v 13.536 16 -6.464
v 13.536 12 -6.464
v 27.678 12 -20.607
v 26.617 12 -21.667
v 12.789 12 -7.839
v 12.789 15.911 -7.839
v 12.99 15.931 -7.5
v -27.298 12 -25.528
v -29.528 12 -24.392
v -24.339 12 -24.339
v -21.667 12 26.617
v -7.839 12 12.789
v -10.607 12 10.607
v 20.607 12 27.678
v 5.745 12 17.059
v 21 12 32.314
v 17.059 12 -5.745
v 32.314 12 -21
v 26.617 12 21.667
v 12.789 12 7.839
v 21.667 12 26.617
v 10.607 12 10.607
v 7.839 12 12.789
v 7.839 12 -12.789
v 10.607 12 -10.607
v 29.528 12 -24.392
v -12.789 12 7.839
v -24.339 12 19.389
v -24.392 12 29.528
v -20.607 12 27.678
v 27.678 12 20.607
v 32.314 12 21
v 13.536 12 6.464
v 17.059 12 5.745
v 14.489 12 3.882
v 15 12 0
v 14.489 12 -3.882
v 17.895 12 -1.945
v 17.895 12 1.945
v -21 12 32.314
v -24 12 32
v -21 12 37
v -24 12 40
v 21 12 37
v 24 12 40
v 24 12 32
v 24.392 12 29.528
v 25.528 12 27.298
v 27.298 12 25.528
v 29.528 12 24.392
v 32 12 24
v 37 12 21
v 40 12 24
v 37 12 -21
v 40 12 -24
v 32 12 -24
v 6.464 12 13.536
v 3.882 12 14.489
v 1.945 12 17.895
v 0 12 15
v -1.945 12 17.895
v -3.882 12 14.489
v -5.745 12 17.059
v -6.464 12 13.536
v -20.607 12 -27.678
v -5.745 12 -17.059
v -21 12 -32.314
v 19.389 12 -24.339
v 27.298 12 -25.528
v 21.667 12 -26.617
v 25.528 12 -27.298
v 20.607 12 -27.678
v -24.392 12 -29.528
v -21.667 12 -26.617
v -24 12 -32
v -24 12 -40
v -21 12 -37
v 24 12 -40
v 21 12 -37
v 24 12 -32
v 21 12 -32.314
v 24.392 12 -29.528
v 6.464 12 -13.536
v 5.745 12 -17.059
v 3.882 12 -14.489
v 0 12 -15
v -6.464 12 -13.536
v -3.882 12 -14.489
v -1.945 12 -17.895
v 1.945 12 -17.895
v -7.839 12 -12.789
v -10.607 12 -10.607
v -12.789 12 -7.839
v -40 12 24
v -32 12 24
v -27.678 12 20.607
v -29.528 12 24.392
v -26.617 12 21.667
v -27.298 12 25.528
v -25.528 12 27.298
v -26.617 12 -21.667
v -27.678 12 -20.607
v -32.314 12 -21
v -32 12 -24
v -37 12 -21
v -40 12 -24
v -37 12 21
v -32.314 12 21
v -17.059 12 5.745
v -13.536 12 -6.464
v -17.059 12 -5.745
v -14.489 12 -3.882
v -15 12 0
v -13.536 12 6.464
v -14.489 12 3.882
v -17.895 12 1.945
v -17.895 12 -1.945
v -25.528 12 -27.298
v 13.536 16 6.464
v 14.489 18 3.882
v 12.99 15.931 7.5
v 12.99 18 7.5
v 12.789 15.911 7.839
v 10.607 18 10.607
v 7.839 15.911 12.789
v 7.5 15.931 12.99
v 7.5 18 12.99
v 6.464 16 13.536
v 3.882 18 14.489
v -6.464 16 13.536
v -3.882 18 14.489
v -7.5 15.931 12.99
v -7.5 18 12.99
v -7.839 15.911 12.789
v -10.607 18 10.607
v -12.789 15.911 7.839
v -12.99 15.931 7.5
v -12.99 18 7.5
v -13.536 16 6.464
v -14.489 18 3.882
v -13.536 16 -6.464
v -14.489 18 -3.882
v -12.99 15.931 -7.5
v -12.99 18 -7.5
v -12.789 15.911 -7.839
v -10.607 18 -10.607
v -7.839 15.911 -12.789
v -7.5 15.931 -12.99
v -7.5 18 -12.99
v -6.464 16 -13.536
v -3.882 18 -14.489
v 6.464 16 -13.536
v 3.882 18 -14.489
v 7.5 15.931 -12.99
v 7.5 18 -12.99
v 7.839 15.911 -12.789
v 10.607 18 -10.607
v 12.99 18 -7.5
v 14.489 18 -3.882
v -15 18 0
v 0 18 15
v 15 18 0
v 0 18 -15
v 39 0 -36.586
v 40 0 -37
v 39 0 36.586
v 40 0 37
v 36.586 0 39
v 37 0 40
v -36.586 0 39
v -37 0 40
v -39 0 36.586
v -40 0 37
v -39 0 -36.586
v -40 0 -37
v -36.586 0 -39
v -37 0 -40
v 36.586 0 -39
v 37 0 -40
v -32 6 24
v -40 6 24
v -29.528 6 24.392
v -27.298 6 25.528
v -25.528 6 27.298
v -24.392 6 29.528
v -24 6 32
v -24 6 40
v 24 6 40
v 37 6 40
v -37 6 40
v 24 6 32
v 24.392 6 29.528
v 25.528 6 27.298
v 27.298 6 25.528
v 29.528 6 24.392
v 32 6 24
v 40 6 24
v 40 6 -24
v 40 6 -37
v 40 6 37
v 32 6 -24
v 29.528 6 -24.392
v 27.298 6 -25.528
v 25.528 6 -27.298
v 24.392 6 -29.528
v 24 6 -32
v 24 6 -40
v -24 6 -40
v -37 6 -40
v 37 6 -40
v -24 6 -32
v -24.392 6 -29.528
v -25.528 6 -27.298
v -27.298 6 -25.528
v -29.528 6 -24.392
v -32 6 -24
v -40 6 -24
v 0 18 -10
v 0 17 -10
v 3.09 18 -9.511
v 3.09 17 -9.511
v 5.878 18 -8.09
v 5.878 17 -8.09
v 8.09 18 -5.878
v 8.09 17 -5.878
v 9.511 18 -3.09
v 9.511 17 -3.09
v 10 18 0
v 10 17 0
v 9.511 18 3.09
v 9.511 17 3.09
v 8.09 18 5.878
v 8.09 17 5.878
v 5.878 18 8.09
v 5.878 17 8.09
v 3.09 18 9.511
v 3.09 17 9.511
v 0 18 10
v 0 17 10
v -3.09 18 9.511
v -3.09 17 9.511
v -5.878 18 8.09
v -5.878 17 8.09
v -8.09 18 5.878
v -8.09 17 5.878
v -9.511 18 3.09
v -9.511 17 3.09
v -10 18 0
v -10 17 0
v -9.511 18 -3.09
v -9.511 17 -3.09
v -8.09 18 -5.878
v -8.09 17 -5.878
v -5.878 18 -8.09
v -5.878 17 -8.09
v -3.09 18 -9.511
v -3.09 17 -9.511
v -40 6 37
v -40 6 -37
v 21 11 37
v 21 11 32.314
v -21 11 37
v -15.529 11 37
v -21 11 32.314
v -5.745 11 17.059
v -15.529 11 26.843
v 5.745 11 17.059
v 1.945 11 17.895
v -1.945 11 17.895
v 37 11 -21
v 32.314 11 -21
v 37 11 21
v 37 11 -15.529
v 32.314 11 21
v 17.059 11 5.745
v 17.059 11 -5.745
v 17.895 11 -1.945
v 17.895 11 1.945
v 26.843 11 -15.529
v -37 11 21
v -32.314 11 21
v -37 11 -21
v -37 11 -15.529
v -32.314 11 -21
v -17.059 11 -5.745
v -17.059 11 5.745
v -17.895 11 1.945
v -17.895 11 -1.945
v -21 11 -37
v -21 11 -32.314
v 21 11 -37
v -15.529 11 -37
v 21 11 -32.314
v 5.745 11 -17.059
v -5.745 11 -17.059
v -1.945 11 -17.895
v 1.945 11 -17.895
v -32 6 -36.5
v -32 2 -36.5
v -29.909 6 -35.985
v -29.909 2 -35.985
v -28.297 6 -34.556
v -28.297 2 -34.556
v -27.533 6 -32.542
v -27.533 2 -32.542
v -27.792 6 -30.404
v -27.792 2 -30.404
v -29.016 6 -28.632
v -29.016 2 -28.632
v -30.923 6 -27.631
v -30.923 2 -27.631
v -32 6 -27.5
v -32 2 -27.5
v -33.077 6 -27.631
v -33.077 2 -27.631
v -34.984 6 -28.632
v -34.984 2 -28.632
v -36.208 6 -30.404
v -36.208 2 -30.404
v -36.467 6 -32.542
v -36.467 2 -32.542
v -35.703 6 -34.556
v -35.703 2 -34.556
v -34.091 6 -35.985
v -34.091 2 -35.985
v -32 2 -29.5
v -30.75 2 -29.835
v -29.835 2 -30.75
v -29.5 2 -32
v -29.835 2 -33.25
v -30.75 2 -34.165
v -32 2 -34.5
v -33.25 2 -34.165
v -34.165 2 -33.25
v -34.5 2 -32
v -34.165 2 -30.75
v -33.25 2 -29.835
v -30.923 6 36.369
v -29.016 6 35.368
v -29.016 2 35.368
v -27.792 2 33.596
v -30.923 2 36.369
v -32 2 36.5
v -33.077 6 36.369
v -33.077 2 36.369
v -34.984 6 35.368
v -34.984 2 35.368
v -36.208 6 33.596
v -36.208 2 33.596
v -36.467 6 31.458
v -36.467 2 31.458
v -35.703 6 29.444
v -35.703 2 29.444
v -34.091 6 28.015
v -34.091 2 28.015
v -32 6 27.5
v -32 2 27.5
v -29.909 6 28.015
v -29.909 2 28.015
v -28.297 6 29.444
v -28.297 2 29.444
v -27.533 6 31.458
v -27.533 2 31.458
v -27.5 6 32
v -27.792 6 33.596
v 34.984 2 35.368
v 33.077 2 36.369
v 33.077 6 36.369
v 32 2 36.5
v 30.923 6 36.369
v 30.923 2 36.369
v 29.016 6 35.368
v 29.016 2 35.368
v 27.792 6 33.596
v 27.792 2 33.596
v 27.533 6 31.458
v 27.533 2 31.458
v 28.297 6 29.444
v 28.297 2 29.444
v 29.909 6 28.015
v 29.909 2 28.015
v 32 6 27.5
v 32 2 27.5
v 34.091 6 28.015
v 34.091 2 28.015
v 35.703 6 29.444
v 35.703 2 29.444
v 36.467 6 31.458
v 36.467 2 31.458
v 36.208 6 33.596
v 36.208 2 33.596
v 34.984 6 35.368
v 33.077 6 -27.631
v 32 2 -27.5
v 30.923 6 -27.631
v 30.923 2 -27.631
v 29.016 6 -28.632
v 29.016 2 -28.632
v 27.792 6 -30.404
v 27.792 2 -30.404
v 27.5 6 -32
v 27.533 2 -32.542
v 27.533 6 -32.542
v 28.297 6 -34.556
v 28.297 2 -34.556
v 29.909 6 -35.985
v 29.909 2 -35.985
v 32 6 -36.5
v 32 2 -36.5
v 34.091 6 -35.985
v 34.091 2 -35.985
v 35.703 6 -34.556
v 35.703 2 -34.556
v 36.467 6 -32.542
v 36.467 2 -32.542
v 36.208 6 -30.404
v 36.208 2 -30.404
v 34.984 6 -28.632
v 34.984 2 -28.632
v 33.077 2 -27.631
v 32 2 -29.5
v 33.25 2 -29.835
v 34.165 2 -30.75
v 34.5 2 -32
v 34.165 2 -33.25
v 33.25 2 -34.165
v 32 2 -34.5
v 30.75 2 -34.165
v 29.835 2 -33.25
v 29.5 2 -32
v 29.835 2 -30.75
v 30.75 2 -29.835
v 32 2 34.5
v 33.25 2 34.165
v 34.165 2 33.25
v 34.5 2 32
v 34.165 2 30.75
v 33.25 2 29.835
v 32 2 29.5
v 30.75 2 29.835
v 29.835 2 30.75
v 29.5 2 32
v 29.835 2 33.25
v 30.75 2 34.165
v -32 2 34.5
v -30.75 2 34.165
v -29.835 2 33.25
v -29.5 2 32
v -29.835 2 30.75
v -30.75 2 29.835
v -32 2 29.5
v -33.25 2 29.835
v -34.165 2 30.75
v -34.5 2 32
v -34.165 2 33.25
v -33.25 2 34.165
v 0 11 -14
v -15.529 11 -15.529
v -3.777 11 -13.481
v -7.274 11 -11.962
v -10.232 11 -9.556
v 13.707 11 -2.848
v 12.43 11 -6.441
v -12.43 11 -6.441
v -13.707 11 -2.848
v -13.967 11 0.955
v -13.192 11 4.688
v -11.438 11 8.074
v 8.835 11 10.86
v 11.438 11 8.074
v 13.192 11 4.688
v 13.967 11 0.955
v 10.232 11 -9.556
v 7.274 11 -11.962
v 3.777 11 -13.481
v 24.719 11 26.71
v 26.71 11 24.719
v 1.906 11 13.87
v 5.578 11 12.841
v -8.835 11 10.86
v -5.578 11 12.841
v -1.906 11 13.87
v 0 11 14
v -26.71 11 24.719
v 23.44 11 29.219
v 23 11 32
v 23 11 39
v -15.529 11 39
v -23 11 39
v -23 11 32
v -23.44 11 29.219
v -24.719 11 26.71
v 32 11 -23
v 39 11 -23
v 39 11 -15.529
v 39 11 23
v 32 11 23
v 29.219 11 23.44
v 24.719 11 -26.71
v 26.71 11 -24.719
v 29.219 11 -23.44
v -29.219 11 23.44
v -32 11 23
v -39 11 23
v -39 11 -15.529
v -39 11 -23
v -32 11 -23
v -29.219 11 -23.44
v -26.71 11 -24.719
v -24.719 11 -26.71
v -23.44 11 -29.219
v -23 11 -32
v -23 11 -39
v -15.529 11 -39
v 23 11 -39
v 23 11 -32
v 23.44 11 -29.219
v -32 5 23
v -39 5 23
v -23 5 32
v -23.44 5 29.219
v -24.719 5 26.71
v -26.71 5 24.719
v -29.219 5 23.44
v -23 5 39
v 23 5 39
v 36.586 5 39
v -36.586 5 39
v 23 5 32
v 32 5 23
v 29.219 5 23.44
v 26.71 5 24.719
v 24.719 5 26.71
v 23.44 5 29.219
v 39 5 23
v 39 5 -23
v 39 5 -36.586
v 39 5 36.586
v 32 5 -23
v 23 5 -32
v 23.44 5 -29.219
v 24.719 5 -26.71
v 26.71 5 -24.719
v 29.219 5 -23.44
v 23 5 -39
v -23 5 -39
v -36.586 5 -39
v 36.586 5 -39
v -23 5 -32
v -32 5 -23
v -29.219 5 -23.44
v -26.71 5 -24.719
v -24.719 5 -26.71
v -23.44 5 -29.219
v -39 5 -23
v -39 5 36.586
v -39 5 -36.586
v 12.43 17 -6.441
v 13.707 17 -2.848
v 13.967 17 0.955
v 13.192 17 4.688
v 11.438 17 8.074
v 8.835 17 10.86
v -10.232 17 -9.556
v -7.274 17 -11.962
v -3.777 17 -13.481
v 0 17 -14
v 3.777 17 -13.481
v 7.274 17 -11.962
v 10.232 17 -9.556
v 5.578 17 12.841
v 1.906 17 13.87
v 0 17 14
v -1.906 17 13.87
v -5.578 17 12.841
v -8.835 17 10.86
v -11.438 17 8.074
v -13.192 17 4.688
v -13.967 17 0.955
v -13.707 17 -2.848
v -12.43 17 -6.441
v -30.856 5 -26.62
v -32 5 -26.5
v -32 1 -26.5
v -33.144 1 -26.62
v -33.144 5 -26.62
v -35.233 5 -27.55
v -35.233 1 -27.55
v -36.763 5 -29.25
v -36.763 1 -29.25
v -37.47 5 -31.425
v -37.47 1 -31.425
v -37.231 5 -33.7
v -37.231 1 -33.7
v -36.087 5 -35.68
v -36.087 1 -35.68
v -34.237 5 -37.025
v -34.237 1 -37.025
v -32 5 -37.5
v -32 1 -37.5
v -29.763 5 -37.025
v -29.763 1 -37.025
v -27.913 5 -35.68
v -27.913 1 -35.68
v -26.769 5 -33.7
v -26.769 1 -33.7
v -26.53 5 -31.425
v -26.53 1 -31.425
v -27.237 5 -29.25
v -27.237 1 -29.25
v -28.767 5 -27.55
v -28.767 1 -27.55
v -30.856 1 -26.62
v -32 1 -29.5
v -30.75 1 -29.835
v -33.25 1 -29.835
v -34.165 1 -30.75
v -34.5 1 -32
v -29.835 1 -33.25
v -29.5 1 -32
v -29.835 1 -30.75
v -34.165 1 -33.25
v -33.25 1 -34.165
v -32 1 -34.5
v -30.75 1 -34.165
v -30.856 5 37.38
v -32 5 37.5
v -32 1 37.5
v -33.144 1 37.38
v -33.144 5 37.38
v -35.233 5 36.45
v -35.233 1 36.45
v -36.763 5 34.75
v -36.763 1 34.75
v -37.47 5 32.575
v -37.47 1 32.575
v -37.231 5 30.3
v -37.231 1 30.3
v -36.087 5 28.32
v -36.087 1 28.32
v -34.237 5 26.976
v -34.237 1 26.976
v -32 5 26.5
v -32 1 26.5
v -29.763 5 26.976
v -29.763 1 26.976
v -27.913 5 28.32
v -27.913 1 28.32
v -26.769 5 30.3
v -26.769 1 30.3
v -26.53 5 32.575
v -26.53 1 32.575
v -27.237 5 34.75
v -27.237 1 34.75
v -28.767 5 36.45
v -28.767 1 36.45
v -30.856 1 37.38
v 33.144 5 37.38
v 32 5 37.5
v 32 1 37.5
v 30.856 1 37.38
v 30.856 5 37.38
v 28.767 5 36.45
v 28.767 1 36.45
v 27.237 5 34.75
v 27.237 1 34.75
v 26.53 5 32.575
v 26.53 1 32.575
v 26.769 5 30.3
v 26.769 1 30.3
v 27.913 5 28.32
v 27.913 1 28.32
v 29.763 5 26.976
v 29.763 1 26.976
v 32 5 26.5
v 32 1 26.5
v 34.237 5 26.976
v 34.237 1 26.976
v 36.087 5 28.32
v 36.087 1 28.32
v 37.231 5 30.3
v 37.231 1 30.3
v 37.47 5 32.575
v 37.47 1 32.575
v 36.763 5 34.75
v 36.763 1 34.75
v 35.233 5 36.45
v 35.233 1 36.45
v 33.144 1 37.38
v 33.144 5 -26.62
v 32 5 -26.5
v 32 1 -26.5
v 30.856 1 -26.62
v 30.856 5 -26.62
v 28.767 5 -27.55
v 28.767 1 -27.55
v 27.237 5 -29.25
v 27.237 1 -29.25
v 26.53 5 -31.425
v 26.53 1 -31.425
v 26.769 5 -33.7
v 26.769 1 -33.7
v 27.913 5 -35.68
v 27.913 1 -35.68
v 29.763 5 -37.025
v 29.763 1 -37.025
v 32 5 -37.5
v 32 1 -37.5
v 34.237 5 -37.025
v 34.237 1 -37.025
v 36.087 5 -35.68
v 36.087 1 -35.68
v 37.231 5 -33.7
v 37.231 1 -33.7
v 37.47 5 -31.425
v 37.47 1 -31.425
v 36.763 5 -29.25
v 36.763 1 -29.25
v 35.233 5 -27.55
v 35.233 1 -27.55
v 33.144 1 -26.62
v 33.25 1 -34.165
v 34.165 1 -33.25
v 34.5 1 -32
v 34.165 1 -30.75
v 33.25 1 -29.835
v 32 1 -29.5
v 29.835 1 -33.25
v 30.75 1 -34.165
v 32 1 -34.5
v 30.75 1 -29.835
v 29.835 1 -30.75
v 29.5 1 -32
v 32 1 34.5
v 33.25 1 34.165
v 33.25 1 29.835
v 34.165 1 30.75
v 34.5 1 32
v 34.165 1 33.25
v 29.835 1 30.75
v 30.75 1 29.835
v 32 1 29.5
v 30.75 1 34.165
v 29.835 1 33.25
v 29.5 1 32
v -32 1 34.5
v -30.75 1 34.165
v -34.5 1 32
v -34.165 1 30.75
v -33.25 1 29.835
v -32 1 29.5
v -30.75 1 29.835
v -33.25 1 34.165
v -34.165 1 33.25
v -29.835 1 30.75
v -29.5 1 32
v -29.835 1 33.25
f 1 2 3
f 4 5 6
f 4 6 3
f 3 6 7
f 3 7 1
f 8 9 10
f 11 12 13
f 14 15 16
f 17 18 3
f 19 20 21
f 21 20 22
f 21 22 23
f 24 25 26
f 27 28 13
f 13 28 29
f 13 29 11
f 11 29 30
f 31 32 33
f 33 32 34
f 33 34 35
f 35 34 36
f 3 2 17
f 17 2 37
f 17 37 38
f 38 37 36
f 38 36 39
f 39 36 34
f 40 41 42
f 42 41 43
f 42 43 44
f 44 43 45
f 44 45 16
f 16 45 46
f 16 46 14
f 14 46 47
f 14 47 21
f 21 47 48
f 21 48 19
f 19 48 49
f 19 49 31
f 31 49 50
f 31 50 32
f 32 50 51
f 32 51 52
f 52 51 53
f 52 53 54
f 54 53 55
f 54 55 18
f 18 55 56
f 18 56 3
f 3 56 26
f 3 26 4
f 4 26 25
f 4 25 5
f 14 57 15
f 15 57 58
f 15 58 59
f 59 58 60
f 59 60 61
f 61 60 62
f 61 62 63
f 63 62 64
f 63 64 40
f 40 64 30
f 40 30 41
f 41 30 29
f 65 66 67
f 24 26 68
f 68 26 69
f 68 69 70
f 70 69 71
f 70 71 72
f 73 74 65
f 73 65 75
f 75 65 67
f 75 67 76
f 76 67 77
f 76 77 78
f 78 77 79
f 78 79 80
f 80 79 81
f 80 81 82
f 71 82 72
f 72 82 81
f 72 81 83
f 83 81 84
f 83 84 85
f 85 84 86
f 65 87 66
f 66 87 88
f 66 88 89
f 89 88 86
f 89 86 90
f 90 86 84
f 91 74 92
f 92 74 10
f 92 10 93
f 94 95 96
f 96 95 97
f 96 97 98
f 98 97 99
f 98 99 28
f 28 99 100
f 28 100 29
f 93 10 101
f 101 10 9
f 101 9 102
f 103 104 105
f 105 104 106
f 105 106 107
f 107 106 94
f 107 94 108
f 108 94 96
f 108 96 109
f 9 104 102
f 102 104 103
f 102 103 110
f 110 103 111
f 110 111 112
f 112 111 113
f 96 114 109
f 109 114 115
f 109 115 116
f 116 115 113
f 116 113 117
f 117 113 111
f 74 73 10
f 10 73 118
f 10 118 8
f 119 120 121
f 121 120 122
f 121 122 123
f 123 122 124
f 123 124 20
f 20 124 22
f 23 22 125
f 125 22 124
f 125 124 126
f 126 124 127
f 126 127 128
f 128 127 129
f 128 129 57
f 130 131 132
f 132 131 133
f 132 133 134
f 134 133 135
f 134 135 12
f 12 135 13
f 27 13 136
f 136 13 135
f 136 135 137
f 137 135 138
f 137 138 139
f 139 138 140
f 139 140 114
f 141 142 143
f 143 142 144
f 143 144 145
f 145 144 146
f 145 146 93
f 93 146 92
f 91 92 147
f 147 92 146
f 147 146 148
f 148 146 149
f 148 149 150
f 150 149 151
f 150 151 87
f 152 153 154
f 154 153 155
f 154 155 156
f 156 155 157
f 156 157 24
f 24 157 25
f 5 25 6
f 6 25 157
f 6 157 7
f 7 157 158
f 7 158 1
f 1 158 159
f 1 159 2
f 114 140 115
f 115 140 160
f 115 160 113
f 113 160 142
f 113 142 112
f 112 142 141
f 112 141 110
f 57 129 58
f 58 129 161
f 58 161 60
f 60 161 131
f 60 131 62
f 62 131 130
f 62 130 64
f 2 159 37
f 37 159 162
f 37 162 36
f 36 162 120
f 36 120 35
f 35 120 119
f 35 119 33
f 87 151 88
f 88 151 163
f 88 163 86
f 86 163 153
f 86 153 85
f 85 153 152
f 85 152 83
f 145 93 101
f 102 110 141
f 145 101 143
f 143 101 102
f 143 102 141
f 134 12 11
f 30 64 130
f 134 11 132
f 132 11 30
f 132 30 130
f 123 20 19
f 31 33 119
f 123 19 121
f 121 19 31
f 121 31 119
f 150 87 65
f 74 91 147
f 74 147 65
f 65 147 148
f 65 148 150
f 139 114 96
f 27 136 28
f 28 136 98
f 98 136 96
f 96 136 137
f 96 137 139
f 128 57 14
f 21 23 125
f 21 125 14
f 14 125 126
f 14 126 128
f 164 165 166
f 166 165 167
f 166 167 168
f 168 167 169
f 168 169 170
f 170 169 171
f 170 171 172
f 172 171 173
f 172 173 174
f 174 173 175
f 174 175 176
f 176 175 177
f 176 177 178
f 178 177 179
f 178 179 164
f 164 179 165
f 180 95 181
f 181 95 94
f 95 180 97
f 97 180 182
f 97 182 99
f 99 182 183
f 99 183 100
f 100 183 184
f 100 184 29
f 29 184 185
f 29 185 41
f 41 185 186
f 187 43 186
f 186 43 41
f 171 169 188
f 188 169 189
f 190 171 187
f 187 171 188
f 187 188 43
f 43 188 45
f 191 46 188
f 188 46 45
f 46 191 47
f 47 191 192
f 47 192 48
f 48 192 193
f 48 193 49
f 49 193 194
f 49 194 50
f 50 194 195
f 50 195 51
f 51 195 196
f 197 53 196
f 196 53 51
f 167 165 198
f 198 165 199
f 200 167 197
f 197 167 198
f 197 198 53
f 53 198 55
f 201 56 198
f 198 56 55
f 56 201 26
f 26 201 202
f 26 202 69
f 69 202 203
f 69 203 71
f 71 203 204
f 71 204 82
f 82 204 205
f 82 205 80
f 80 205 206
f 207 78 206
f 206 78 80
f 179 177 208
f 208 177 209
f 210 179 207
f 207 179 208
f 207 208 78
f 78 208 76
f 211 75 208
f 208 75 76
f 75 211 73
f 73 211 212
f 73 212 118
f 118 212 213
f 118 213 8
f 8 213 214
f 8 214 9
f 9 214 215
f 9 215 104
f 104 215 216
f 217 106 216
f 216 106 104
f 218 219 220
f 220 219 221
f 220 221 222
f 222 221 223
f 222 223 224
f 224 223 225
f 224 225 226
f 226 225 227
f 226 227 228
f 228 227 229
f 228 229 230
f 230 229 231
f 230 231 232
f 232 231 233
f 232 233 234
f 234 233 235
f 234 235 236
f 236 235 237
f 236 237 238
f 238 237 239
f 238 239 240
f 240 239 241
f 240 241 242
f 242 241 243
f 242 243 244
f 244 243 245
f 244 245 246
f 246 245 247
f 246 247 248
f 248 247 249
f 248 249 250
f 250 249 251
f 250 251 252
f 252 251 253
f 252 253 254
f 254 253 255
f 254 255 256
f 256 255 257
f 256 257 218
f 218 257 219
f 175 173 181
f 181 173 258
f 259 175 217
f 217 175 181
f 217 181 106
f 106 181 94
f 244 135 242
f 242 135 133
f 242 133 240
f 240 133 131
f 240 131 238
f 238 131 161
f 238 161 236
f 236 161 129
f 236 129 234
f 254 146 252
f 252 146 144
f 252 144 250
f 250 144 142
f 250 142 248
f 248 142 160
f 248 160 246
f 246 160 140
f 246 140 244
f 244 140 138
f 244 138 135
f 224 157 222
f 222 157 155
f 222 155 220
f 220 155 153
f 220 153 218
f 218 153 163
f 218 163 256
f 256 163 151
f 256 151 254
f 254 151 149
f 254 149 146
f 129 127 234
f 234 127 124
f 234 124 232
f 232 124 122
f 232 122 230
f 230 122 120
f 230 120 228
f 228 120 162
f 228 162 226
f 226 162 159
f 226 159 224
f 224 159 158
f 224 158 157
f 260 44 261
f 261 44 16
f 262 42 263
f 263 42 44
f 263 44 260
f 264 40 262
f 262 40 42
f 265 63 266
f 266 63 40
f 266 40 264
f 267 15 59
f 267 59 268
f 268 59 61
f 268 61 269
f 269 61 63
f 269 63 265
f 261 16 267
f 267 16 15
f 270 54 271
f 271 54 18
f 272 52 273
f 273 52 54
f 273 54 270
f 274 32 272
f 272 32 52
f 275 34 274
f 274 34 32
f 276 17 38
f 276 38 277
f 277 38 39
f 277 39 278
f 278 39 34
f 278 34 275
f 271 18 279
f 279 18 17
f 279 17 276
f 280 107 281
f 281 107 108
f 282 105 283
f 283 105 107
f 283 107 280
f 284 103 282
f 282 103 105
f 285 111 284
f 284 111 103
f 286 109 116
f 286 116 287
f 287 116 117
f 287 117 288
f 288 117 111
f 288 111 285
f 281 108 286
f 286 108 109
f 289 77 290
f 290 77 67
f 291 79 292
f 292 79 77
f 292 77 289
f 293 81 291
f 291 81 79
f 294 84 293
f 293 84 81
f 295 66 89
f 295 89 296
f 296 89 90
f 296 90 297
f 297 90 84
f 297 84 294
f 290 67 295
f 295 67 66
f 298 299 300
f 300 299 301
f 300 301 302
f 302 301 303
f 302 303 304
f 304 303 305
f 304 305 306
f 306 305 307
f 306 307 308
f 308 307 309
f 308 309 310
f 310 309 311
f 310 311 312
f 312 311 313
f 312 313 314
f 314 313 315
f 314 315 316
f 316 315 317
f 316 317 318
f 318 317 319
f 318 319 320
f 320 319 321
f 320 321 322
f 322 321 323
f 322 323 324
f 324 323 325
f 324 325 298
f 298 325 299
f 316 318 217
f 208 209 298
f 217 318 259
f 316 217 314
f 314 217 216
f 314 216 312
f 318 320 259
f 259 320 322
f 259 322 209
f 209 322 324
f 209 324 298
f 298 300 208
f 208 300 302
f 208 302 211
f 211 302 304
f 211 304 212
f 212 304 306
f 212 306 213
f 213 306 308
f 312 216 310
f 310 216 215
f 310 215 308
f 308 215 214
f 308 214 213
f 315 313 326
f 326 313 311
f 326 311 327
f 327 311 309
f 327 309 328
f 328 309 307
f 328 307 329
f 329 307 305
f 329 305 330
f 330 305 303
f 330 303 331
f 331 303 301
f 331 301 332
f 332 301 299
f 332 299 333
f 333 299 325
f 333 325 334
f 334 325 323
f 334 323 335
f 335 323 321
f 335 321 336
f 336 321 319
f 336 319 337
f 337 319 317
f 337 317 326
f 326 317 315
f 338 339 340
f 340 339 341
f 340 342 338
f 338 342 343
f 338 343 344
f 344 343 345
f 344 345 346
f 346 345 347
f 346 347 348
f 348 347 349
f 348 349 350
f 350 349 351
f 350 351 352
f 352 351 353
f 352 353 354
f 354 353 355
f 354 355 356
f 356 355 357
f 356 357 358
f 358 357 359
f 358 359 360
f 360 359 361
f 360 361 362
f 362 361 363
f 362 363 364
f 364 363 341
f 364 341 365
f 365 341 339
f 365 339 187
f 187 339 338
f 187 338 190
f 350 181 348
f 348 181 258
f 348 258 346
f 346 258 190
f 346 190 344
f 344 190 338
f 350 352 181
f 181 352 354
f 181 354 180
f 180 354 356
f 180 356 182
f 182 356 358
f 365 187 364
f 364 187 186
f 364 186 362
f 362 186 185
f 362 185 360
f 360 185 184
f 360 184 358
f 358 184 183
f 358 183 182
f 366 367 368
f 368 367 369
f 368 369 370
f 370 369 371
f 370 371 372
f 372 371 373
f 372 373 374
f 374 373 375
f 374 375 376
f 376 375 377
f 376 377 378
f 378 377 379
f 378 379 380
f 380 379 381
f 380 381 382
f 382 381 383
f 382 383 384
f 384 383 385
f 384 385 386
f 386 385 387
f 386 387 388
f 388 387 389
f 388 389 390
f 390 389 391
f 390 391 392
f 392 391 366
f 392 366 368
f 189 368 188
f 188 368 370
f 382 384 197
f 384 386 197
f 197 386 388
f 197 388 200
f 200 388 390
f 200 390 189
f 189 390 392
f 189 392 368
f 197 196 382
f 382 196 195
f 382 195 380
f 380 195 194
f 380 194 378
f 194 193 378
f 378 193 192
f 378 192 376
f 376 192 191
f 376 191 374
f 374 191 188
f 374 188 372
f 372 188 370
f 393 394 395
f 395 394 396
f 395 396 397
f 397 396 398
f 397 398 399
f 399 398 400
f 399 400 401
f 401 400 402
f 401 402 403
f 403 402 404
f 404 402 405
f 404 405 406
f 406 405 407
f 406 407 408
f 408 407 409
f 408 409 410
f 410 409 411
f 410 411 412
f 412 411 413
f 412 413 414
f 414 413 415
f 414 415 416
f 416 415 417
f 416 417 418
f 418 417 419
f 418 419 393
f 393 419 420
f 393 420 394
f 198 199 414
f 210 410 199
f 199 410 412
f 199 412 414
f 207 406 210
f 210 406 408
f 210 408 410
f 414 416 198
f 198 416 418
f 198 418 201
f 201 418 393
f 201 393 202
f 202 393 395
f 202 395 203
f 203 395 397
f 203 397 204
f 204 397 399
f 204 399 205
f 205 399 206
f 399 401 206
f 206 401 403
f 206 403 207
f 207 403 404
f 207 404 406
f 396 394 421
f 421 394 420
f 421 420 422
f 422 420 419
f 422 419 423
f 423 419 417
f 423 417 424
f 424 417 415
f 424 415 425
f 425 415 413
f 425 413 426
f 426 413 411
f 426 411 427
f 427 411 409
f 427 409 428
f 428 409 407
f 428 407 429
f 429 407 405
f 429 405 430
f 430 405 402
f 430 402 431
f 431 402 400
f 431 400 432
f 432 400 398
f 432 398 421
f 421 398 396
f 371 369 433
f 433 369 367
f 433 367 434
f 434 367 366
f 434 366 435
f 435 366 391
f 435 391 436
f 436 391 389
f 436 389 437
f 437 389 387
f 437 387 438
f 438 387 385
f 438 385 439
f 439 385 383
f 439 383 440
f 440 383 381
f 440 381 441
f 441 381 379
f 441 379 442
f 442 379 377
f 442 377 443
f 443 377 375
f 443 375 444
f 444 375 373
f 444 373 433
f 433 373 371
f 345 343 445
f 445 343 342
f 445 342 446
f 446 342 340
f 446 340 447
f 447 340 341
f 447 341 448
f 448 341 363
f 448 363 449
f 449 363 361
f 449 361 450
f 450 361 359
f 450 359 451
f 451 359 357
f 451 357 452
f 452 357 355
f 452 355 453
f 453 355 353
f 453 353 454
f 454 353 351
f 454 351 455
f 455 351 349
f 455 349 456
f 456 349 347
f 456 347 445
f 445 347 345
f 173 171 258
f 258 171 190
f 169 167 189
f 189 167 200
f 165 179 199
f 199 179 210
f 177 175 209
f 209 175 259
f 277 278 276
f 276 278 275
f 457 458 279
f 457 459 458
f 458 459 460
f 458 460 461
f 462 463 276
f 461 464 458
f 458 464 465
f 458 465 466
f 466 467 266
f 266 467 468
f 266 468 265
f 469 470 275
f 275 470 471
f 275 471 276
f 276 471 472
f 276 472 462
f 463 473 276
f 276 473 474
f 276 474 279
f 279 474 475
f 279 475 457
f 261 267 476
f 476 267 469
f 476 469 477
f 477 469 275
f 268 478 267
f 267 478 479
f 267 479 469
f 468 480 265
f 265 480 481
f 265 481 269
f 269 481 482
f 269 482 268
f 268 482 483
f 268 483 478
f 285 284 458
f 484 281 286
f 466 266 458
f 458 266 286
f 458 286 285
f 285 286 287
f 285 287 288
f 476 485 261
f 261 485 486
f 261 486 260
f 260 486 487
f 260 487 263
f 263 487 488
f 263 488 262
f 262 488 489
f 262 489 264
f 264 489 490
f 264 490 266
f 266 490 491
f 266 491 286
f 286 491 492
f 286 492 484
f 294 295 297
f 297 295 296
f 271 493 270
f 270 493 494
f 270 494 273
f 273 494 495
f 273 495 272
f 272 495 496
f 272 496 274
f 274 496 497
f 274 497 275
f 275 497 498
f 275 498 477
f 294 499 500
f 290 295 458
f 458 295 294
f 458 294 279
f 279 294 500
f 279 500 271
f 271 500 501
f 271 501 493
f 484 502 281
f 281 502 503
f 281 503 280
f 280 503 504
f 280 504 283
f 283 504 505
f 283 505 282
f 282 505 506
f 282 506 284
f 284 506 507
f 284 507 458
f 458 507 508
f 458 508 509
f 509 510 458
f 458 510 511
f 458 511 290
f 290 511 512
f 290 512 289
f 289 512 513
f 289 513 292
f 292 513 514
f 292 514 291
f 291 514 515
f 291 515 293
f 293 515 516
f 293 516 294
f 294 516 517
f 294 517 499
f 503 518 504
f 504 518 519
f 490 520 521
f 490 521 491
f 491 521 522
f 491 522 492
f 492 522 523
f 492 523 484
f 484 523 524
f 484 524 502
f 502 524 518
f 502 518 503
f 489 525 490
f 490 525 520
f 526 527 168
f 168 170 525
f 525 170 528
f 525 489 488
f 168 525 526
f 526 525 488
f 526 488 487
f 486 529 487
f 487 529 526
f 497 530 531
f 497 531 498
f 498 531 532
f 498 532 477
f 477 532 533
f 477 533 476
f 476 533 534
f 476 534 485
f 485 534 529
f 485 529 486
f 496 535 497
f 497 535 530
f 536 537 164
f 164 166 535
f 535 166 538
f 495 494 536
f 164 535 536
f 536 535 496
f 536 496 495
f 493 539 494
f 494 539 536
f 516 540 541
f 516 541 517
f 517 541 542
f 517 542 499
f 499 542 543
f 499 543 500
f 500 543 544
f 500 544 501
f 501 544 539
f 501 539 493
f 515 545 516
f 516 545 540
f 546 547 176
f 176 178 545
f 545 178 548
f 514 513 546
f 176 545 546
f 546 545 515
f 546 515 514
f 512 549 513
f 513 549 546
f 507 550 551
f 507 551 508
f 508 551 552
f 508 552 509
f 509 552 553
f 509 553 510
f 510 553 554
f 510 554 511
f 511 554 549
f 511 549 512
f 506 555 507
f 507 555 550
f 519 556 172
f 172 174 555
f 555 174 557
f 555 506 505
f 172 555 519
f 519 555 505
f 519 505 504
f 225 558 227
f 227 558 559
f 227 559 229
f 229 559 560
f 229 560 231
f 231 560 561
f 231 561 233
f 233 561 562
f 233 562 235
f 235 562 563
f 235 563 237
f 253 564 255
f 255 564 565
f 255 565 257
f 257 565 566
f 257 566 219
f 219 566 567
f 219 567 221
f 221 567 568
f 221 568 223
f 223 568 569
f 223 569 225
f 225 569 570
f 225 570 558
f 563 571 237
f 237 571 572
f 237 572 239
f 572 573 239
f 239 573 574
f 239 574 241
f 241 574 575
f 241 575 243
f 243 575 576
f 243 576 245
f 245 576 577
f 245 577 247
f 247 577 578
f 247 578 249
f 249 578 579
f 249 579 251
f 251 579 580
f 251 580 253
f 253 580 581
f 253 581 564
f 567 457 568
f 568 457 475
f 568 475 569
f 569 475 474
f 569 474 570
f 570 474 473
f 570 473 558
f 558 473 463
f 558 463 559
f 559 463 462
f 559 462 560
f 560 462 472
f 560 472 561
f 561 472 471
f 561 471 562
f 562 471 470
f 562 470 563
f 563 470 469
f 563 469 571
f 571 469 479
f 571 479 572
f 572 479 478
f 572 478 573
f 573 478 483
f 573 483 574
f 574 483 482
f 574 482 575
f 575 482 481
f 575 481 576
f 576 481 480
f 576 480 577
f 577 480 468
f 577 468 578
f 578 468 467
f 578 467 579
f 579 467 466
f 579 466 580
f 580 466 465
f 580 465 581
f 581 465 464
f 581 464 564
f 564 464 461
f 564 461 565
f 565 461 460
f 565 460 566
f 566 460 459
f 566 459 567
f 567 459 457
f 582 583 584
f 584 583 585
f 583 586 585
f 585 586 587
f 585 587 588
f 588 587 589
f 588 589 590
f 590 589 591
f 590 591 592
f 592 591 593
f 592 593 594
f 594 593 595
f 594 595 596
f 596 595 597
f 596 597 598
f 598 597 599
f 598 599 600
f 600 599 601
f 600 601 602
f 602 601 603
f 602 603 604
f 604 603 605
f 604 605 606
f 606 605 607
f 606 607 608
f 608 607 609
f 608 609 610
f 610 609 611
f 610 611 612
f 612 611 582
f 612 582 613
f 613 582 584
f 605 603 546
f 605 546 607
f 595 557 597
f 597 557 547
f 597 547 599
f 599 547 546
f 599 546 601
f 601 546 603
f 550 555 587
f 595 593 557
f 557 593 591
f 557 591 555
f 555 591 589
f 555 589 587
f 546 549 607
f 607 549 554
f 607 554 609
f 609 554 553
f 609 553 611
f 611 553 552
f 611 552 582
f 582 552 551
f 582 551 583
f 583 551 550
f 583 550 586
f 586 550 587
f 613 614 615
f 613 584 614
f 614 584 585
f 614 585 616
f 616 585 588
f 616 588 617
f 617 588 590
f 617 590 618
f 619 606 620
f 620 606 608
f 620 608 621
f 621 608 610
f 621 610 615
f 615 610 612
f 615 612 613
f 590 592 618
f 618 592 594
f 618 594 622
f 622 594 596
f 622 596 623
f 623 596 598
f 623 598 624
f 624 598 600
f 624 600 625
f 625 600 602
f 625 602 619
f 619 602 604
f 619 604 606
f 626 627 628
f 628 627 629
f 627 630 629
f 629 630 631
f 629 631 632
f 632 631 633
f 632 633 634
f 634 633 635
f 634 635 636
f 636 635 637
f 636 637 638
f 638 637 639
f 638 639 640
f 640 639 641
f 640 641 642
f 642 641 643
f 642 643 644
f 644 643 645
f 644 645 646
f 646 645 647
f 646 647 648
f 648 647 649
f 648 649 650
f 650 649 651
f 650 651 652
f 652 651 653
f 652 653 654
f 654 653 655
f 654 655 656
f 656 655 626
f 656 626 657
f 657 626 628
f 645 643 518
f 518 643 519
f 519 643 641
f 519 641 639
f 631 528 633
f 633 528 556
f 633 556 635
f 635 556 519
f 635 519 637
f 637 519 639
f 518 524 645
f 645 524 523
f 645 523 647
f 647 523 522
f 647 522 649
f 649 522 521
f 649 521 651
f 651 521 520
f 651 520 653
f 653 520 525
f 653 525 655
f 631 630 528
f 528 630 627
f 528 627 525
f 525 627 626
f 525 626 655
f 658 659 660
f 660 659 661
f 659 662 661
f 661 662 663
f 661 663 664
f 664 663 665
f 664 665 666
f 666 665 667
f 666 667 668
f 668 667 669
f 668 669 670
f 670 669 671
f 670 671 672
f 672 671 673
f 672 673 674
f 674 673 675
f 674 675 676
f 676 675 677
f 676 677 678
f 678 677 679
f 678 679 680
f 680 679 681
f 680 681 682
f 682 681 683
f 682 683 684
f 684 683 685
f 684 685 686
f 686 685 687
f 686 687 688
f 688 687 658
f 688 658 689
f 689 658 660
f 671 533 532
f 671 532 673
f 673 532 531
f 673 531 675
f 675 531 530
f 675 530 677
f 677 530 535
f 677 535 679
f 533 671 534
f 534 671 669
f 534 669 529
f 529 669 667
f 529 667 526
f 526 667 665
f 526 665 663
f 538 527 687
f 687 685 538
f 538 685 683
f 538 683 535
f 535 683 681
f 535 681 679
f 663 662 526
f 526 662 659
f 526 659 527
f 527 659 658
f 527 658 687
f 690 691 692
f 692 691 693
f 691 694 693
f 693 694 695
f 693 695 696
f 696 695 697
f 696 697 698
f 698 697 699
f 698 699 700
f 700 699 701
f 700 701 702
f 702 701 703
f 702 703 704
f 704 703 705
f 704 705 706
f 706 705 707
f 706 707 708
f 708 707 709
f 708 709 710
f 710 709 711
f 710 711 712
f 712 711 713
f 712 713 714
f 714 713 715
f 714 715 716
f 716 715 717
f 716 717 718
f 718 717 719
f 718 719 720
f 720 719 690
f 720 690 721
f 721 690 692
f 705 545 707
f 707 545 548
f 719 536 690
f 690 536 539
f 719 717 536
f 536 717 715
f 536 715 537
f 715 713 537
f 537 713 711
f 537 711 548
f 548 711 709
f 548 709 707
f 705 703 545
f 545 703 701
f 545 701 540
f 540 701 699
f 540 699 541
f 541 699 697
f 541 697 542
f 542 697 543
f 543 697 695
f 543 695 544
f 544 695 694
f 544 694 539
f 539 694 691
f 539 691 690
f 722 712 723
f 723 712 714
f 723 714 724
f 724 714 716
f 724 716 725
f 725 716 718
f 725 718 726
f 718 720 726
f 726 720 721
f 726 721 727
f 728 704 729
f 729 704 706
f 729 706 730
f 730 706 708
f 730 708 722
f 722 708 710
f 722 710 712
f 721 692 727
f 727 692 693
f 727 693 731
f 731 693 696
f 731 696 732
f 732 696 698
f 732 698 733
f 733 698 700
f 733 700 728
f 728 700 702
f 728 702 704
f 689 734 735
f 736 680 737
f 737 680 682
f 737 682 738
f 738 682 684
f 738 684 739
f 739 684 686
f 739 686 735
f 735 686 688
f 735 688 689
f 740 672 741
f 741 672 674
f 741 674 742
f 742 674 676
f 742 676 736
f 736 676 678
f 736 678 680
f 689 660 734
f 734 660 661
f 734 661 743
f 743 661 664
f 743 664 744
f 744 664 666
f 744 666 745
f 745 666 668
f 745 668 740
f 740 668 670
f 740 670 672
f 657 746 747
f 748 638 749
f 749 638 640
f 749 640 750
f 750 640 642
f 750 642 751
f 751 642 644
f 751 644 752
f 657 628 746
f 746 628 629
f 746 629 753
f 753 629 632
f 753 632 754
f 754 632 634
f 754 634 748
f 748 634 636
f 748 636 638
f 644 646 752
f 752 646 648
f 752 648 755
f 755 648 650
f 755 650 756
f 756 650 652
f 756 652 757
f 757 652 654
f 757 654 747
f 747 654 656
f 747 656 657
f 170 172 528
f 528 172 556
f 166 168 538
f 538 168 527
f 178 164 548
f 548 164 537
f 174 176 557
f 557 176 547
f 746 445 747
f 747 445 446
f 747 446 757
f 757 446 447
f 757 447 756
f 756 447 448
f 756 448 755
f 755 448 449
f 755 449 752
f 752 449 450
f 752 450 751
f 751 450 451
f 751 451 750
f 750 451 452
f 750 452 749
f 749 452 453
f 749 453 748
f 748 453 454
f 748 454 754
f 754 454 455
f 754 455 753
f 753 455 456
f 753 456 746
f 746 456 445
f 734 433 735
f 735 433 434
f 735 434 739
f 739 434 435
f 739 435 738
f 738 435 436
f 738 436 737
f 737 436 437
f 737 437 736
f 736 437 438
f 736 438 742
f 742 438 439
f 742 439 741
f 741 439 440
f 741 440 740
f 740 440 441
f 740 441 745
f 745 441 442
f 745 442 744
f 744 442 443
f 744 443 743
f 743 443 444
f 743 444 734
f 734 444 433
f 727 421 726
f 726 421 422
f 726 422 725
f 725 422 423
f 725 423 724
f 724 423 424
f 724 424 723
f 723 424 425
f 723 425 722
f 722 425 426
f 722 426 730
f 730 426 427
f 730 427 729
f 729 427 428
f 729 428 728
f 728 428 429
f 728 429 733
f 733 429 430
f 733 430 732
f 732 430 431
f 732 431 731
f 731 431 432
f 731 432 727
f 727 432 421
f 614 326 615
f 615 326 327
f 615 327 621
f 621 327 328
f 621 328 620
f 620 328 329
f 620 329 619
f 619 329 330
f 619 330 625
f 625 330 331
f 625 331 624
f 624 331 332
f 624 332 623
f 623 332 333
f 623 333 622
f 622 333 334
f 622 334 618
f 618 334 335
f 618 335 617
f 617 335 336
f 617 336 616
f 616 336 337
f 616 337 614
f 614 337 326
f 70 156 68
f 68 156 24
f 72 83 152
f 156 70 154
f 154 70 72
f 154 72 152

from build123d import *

# Parameters (mm, degrees)
SKETCH1_R               = 10
BOSS_EXTRUDE1_DEPTH     = 12
SKETCH2_R               = 15
SKETCH2_R_2             = 10
BOSS_EXTRUDE2_DEPTH     = 6
CUT_EXTRUDE1_DEPTH      = 58.827329179
CIRPATTERN1_COUNT       = 4
SKETCH1_4_R             = 4.5
BOSS_EXTRUDE3_DEPTH     = 6
SKETCH1_5_R             = 4.5
SKETCH1_5_R_2           = 3.5
SKETCH1_5_R_3           = 2.5
BOSS_EXTRUDE4_DEPTH     = 2
CIRPATTERN2_COUNT       = 4
CHAMFER3_SIZE           = 3
SHELL1_T                = -1
CUT_EXTRUDE3_START      = -11
SKETCH9_R               = 11
CUT_EXTRUDE3_DEPTH      = 11
SKETCH10_R              = 11
CUT_EXTRUDE4_DEPTH      = 6
BOSS_EXTRUDE5_DEPTH     = 6
BOSS_EXTRUDE5_2_DEPTH   = 6
CUT_EXTRUDE7_DEPTH      = 60.363288319
CUT_EXTRUDE7_DEPTH_BACK = 60.363288319
SKETCH14_OUTSIDE_W      = 138.05
SKETCH14_OUTSIDE_H      = 42.912
CIRPATTERN5_COUNT       = 4
CUT_EXTRUDE8_DEPTH      = 59.787753827
CUT_EXTRUDE8_DEPTH_BACK = 59.787753827
SKETCH15_R              = 2.5


with BuildPart() as part:
    # Sketch1 → Boss-Extrude1 (new body)
    with BuildSketch(Plane(origin=(0, 0, 0), x_dir=(1, 0, 0), z_dir=(0, 1, 0))):
        with BuildLine():
            Line((24, 40), (-24, 40))
            Line((-24, 40), (-24, 32))
            ThreePointArc((-24, 32), (-26.343145751, 26.343145751), (-32, 24))
            Line((-32, 24), (-40, 24))
            Line((-40, 24), (-40, -24))
            Line((-40, -24), (-32, -24))
            ThreePointArc((-32, -24), (-26.343145751, -26.343145751), (-24, -32))
            Line((-24, -32), (-24, -40))
            Line((-24, -40), (24, -40))
            Line((24, -40), (24, -32))
            ThreePointArc((24, -32), (26.343145751, -26.343145751), (32, -24))
            Line((32, -24), (40, -24))
            Line((40, -24), (40, 24))
            Line((40, 24), (32, 24))
            ThreePointArc((32, 24), (26.343145751, 26.343145751), (24, 32))
            Line((24, 32), (24, 40))
        make_face()
        with Locations(Location((0, 0, 0), (0, 0, 270))):
            Circle(SKETCH1_R, mode=Mode.SUBTRACT)
    extrude(amount=BOSS_EXTRUDE1_DEPTH)

    # Sketch2 → Boss-Extrude2 (add)
    with BuildSketch(Plane(origin=(0, 12, 0), x_dir=(1, 0, 0), z_dir=(0, 1, 0))):
        with Locations(Location((0, 0, 0), (0, 0, 270))):
            Circle(SKETCH2_R)
        with Locations(Location((0, 0, 0), (0, 0, 270))):
            Circle(SKETCH2_R_2, mode=Mode.SUBTRACT)
    extrude(amount=BOSS_EXTRUDE2_DEPTH)

    # Sketch3 → Cut-Extrude1 (cut, through all)
    with BuildSketch(Plane(origin=(0, 12, 0), x_dir=(1, 0, 0), z_dir=(0, 1, 0))):
        with BuildLine():
            Line((21, -37), (-21, -37))
            Line((-21, -37), (-21, -32.313708499))
            Line((-21, -32.313708499), (-5.744900001, -17.0586085))
            ThreePointArc((-5.744900001, -17.0586085), (0, -18), (5.744900001, -17.0586085))
            Line((5.744900001, -17.0586085), (21, -32.313708499))
            Line((21, -32.313708499), (21, -37))
        make_face()
    cut_extrude1 = extrude(amount=-CUT_EXTRUDE1_DEPTH, mode=Mode.SUBTRACT)

    # CirPattern1: Cut-Extrude1 ×4 about axis
    cirpattern1_axis = Axis((0, 0, 0), (0, 1, 0))
    for i in range(1, CIRPATTERN1_COUNT):
        add(cut_extrude1.rotate(cirpattern1_axis, i * 360 / CIRPATTERN1_COUNT), mode=Mode.SUBTRACT)

    # Sketch1<4> → Boss-Extrude3 (add)
    with BuildSketch(Plane(origin=(0, 0, 0), x_dir=(1, 0, 0), z_dir=(0, 1, 0))):
        with BuildLine():
            Line((-24, 32), (-24, 40))
            Line((-24, 40), (-40, 40))
            Line((-40, 40), (-40, 24))
            Line((-40, 24), (-32, 24))
            ThreePointArc((-32, 24), (-26.343145751, 26.343145751), (-24, 32))
        make_face()
        with Locations(Location((-32, 32, 0), (0, 0, 270))):
            Circle(SKETCH1_4_R, mode=Mode.SUBTRACT)
    boss_extrude3 = extrude(amount=BOSS_EXTRUDE3_DEPTH)

    # Sketch1<5> → Boss-Extrude4 (add)
    # profile 1 of 3: a face of its own
    with BuildSketch(Plane(origin=(0, 0, 0), x_dir=(1, 0, 0), z_dir=(0, 1, 0))):
        with Locations(Location((-32, 32, 0), (0, 0, 270))):
            Circle(SKETCH1_5_R)
        with Locations((-32, 32)):
            Circle(SKETCH1_5_R_2, mode=Mode.SUBTRACT)
    # profile 2 of 3: a face of its own
    with BuildSketch(Plane(origin=(0, 0, 0), x_dir=(1, 0, 0), z_dir=(0, 1, 0))):
        with Locations((-32, 32)):
            Circle(SKETCH1_5_R_2)
        with Locations((-32, 32)):
            Circle(SKETCH1_5_R_3, mode=Mode.SUBTRACT)
    # profile 3 of 3: a face of its own
    with BuildSketch(Plane(origin=(0, 0, 0), x_dir=(1, 0, 0), z_dir=(0, 1, 0))):
        with Locations((-32, 32)):
            Circle(SKETCH1_5_R_3)
    boss_extrude4 = extrude(amount=BOSS_EXTRUDE4_DEPTH)

    # CirPattern2: Boss-Extrude3, Boss-Extrude4 ×4 about axis
    cirpattern2_axis = Axis((0, 0, 0), (0, 1, 0))
    add([boss_extrude3.rotate(cirpattern2_axis, i * 360 / CIRPATTERN2_COUNT) for i in range(1, CIRPATTERN2_COUNT)])
    add([boss_extrude4.rotate(cirpattern2_axis, i * 360 / CIRPATTERN2_COUNT) for i in range(1, CIRPATTERN2_COUNT)])

    # Chamfer3
    chamfer3_edges = [part.edges().sort_by_distance(p)[0] for p in [
        (-40, 3, -40),
        (40, 3, -40),
        (40, 3, 40),
        (-40, 3, 40),
    ]]
    chamfer(chamfer3_edges, length=CHAMFER3_SIZE)

    # Shell1
    shell1_openings = [part.faces().sort_by_distance(p)[0] for p in [
        (0, 0, -28.947670916),
    ]]
    offset(amount=SHELL1_T, openings=shell1_openings, kind=Kind.INTERSECTION)

    # Sketch9 → Cut-Extrude3 (cut)
    with BuildSketch(Plane.XZ.offset(CUT_EXTRUDE3_START)):
        with Locations(Location((0, 0, 0), (0, 0, 90))):
            Circle(SKETCH9_R)
        with BuildLine():
            Line((22, 38), (-22, 38))
            Line((-22, 38), (-22, 31.899494937))
            Line((-22, 31.899494937), (-6.004703682, 15.904198618))
            ThreePointArc((-6.004703682, 15.904198618), (0, 17), (6.004703682, 15.904198618))
            Line((6.004703682, 15.904198618), (22, 31.899494937))
            Line((22, 31.899494937), (22, 38))
        make_face()
        with BuildLine():
            Line((-38, 22), (-38, -22))
            Line((-38, -22), (-31.899494937, -22))
            Line((-31.899494937, -22), (-15.904198618, -6.004703682))
            ThreePointArc((-15.904198618, -6.004703682), (-17, 0), (-15.904198618, 6.004703682))
            Line((-15.904198618, 6.004703682), (-31.899494937, 22))
            Line((-31.899494937, 22), (-38, 22))
        make_face()
        with BuildLine():
            Line((-22, -38), (22, -38))
            Line((22, -38), (22, -31.899494937))
            Line((22, -31.899494937), (6.004703682, -15.904198618))
            ThreePointArc((6.004703682, -15.904198618), (0, -17), (-6.004703682, -15.904198618))
            Line((-6.004703682, -15.904198618), (-22, -31.899494937))
            Line((-22, -31.899494937), (-22, -38))
        make_face()
        with BuildLine():
            Line((38, -22), (38, 22))
            Line((38, 22), (31.899494937, 22))
            Line((31.899494937, 22), (15.904198618, 6.004703682))
            ThreePointArc((15.904198618, 6.004703682), (17, 0), (15.904198618, -6.004703682))
            Line((15.904198618, -6.004703682), (31.899494937, -22))
            Line((31.899494937, -22), (38, -22))
        make_face()
    extrude(amount=CUT_EXTRUDE3_DEPTH, mode=Mode.SUBTRACT)

    # Sketch10 → Cut-Extrude4 (cut)
    with BuildSketch(Plane.XZ.offset(-11)):
        Circle(SKETCH10_R)
    extrude(amount=-CUT_EXTRUDE4_DEPTH, mode=Mode.SUBTRACT)

    # Sketch15 → Cut-Extrude8 (cut, two sides: drawn at the far end of the back side and taken through both)
    with BuildSketch(Plane(origin=(0, 2, 0), x_dir=(1, 0, 0), z_dir=(0, 1, 0)).offset(-CUT_EXTRUDE8_DEPTH_BACK)):
        with Locations(Location((-32, -32, 0), (0, 0, 270))):
            Circle(SKETCH15_R)
        with Locations(Location((-32, 32, 0), (0, 0, 270))):
            Circle(SKETCH15_R)
        with Locations(Location((32, 32, 0), (0, 0, 270))):
            Circle(SKETCH15_R)
        with Locations(Location((32, -32, 0), (0, 0, 270))):
            Circle(SKETCH15_R)
    extrude(amount=CUT_EXTRUDE8_DEPTH + CUT_EXTRUDE8_DEPTH_BACK, mode=Mode.SUBTRACT)


with BuildPart() as body_2:
    # Sketch12 → Boss-Extrude5 (new body)
    with BuildSketch(Plane(origin=(0, 12, 0), x_dir=(1, 0, 0), z_dir=(0, 1, 0))):
        with BuildLine():
            Line((-6.464466094, -13.535533906), (-20.606601718, -27.67766953))
            Line((-20.606601718, -27.67766953), (-21.66726189, -26.617009358))
            Line((-21.66726189, -26.617009358), (-7.838951938, -12.788699407))
            ThreePointArc((-7.838951938, -12.788699407), (-7.16145113, -13.180046195), (-6.464466094, -13.535533906))
        make_face()
    extrude(amount=BOSS_EXTRUDE5_DEPTH)


with BuildPart() as body_3:
    # Sketch12 → Boss-Extrude5 2 (new body)
    with BuildSketch(Plane(origin=(0, 12, 0), x_dir=(1, 0, 0), z_dir=(0, 1, 0))):
        with BuildLine():
            Line((-13.535533906, -6.464466094), (-27.67766953, -20.606601718))
            Line((-27.67766953, -20.606601718), (-26.617009358, -21.66726189))
            Line((-26.617009358, -21.66726189), (-12.788699407, -7.838951938))
            ThreePointArc((-12.788699407, -7.838951938), (-13.180046195, -7.16145113), (-13.535533906, -6.464466094))
        make_face()
    extrude(amount=BOSS_EXTRUDE5_2_DEPTH)


with BuildPart() as cut_extrude7_tool:
    # Sketch14 outside → Cut-Extrude7 (new, two sides: drawn at the far end of the back side and taken through both)
    with BuildSketch(Plane(origin=(0, 0, 0), x_dir=(0.7071067811865476, 0, -0.7071067811865476), z_dir=(0.7071067811865476, 0, 0.7071067811865476)).offset(-CUT_EXTRUDE7_DEPTH_BACK)):
        with Locations((0, 9)):
            Rectangle(SKETCH14_OUTSIDE_W, SKETCH14_OUTSIDE_H)
        Polygon((-14.142135624, 16), (-34.142135624, 12), (-14.142135624, 12), align=None, mode=Mode.SUBTRACT)
    extrude(amount=CUT_EXTRUDE7_DEPTH + CUT_EXTRUDE7_DEPTH_BACK)


with BuildPart() as body_3_1:
    add(body_3.part)

    # Cut-Extrude7: cut by cut_extrude7_tool
    add(cut_extrude7_tool.part, mode=Mode.SUBTRACT)


with BuildPart() as body_2_1:
    add(body_2.part)

    # Cut-Extrude7: cut by cut_extrude7_tool
    add(cut_extrude7_tool.part, mode=Mode.SUBTRACT)


with BuildPart() as cirpattern5_1:
    # CirPattern5: pattern copy
    add(body_2_1.part.rotate(Axis((0, 0, 0), (0, 1, 0)), 1 * 360 / CIRPATTERN5_COUNT))


with BuildPart() as cirpattern5_2:
    # CirPattern5: pattern copy
    add(body_2_1.part.rotate(Axis((0, 0, 0), (0, 1, 0)), 2 * 360 / CIRPATTERN5_COUNT))


with BuildPart() as cirpattern5_3:
    # CirPattern5: pattern copy
    add(body_2_1.part.rotate(Axis((0, 0, 0), (0, 1, 0)), 3 * 360 / CIRPATTERN5_COUNT))


with BuildPart() as cirpattern5_4:
    # CirPattern5: pattern copy
    add(body_3_1.part.rotate(Axis((0, 0, 0), (0, 1, 0)), 1 * 360 / CIRPATTERN5_COUNT))


with BuildPart() as cirpattern5_5:
    # CirPattern5: pattern copy
    add(body_3_1.part.rotate(Axis((0, 0, 0), (0, 1, 0)), 2 * 360 / CIRPATTERN5_COUNT))


with BuildPart() as cirpattern5_6:
    # CirPattern5: pattern copy
    add(body_3_1.part.rotate(Axis((0, 0, 0), (0, 1, 0)), 3 * 360 / CIRPATTERN5_COUNT))


with BuildPart() as cirpattern5_5_1:
    add(cirpattern5_5.part)

    # Combine1: union CirPattern5_3, body 2, CirPattern5_1, CirPattern5_6, body 3, CirPattern5_4, part, CirPattern5_2
    add(cirpattern5_3.part)
    add(body_2_1.part)
    add(cirpattern5_1.part)
    add(cirpattern5_6.part)
    add(body_3_1.part)
    add(cirpattern5_4.part)
    add(part.part)
    add(cirpattern5_2.part)


solid = cirpattern5_5_1.part
